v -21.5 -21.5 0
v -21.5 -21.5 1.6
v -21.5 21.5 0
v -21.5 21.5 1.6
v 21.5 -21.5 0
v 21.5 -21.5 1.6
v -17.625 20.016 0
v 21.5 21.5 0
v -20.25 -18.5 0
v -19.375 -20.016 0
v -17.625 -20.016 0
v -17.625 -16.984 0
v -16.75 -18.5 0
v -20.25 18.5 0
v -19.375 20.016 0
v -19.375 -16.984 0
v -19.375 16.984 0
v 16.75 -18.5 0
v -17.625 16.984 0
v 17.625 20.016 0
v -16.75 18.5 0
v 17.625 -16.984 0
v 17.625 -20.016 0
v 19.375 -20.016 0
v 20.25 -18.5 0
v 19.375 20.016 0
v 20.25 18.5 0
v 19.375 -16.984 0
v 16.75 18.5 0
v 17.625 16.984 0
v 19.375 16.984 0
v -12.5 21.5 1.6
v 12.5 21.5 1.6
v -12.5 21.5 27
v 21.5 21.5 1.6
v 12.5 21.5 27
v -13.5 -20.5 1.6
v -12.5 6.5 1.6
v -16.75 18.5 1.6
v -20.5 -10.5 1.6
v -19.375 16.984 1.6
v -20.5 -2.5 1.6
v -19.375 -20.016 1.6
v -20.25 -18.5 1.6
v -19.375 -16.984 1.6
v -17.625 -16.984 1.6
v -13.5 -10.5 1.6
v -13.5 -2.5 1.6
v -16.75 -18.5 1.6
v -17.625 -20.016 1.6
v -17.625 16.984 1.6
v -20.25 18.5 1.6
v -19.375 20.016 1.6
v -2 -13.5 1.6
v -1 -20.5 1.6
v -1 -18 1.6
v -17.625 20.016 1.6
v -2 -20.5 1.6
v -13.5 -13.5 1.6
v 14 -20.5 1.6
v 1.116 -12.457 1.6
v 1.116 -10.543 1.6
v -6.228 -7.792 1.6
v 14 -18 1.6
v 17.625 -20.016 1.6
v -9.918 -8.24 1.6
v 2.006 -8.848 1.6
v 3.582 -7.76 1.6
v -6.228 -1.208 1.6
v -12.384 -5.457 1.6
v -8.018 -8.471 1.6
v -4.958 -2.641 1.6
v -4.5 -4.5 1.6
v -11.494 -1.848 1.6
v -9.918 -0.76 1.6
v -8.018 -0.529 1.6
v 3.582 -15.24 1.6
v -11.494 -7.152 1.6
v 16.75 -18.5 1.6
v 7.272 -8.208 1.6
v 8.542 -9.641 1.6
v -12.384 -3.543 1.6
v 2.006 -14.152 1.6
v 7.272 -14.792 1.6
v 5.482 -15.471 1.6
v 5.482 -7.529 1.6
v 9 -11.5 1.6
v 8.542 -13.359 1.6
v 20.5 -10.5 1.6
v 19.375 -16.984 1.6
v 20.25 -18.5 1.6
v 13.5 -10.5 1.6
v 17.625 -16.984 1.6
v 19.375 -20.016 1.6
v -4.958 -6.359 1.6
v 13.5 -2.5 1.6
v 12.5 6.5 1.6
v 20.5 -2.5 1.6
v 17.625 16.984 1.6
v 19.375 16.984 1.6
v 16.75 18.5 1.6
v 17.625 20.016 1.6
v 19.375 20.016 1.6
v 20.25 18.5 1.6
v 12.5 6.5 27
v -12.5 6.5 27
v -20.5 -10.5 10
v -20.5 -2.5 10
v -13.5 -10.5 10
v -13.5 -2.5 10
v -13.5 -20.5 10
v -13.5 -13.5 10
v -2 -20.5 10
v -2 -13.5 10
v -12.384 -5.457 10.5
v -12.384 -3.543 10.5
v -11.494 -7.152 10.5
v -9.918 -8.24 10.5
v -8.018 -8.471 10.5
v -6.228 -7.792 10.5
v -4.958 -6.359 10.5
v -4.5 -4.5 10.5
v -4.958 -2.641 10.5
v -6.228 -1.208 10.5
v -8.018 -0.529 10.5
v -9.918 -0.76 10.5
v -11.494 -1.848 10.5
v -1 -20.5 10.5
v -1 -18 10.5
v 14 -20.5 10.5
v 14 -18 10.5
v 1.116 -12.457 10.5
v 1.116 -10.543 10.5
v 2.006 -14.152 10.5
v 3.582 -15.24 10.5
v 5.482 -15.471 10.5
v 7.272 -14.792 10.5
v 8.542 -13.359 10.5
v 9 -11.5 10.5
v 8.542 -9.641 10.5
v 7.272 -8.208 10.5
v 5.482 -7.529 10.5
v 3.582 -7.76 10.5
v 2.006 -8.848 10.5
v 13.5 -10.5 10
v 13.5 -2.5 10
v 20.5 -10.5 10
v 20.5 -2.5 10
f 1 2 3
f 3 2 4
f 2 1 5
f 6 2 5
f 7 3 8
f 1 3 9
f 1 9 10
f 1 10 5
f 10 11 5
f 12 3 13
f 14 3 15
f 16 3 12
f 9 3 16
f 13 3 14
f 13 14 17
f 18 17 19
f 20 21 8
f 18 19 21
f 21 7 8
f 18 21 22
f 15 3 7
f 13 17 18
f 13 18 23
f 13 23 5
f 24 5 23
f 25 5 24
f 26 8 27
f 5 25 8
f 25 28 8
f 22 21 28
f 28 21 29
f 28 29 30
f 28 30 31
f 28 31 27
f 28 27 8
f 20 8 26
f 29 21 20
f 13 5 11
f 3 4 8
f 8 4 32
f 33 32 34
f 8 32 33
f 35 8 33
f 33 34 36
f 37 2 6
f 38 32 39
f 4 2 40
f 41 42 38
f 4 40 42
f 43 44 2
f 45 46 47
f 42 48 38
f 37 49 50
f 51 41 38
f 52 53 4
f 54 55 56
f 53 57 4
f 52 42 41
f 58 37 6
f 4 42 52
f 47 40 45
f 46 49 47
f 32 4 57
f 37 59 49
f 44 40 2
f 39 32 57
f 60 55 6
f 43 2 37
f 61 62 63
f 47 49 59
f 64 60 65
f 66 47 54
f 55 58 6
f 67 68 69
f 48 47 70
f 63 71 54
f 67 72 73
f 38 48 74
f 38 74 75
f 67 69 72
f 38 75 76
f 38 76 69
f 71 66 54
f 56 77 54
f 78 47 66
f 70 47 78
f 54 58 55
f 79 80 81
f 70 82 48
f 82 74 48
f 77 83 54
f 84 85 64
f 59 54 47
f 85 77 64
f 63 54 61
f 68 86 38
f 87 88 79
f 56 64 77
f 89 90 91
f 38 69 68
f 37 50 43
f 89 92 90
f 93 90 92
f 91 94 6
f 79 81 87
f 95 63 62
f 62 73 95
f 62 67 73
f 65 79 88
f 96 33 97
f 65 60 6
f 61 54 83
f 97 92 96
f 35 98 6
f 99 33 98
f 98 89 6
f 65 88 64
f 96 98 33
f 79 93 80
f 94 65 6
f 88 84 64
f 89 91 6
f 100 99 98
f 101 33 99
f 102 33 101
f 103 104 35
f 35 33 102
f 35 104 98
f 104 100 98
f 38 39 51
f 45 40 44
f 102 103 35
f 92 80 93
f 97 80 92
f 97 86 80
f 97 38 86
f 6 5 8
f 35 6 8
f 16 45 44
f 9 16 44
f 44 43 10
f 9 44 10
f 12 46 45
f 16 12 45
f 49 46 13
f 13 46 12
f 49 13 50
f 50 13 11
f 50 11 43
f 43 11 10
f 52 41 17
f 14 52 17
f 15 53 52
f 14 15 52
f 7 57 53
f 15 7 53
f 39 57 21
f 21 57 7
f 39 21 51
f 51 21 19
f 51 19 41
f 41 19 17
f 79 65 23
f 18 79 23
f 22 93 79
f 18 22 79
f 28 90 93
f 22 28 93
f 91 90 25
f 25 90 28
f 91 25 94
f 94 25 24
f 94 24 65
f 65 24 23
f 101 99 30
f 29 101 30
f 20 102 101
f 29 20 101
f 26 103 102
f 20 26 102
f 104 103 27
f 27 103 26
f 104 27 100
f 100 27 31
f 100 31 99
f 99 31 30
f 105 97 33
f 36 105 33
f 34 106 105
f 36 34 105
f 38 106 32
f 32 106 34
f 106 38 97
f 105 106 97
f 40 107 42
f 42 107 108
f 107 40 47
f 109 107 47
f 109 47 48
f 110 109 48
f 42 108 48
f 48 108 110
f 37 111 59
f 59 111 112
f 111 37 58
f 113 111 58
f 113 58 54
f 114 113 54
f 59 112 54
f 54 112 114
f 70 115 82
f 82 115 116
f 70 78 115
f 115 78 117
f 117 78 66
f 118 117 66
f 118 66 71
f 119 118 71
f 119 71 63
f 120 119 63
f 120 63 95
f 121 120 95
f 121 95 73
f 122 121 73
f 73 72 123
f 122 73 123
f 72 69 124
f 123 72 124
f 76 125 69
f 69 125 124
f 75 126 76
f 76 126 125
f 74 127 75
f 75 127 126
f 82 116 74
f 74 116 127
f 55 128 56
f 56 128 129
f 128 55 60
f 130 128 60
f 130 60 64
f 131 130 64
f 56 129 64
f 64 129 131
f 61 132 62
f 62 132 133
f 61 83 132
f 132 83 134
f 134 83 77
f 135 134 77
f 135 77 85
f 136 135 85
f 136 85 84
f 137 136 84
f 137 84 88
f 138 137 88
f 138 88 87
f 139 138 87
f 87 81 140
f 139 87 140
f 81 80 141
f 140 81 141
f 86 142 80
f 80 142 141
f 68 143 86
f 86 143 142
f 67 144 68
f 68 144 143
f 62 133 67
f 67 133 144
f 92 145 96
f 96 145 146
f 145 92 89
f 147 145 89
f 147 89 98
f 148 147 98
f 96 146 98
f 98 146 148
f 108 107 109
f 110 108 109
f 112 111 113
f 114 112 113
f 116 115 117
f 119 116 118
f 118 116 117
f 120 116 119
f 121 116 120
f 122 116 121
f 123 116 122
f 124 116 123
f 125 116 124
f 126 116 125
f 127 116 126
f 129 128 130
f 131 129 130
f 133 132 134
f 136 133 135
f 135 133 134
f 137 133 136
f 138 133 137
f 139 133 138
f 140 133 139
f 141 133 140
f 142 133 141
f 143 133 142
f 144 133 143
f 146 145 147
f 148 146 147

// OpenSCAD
// file: ../Colours.scad
//
//FASTENERS
//
boltColour = 		 "gray";
nutColour =  		 "LightGray";
washerColour =       "LightGray";
threadedRodColour =  "gray";


//
//PLATES
//
plateColour =  		"SlateGray";


//
//ELECTRONICS
//
boardColour = 			"red";
photoDiodeColour = 		"DarkSlateGrey";
IRMountColour = 		"white";
batteryColour = 		"blue";
batteryHolderColour = 	"green";
cameraMountColour = 	"green";
cameraColour = 			"red";


//
//MECHANICAL
//
motorColour = 			"WhiteSmoke";
motorMountColour =  	"green";
motorCouplingColour=	"grey";
wheelColour	=			"yellow";


//
//OTHER
//
ballFenderCol = 		"green";
// file: ../Fasteners.scad
include <Colours.scad>

//
//CODE FOR BOLTS	
//

//define some standard bolt dimensions
// [ name on BOM, bolt diameter, hex head thickness, width of head measured between corners]
M3Bolt = ["M3 bolt", 3, 2.3,   6];
M4Bolt = ["M4 bolt", 4,   3, 7.7];
M5Bolt = ["M5 bolt", 5, 4.5, 8.8];
M6Bolt = ["M6 bolt", 6,   5,  11];

//functions for quickly getting bolt dimensions, etc.
function boltName(type) =          type[0];
function boltHoleDia(type) =       type[1];
function boltHeadThickness(type) = type[2];
function boltCorners(type) =       type[3];

module Bolt(type, length, printToBOM = false)
{
	color(boltColour)
	 union()
	 {
		 //hexagonal head shape (cylinder limited to 6 side segments)
		 cylinder(r = boltCorners(type)/2, h = boltHeadThickness(type), $fn = 6);
		 //the bolt shank
		 translate([0,0,-length])
		  cylinder(r = boltHoleDia(type)/2, h = length + 0.1);
	 }
	
	//echoes properties to command line, etc. so it can be counted manually
	//or by a program
	if(printToBOM == true)
	{
		echo(boltName(type), "x", length);
	}
}



//
//CODE FOR NUTS	
//

//define some standard nut dimensions
// [ nut name on BOM, hole diameter, nut thickness, width measured between corners, width between flats]
M3Nut = ["M3 nut", 3, 2.3, 6.1, 5.3];
M4Nut = ["M4 nut", 4,   3, 7.7,   0];
M5Nut = ["M5 nut", 5, 4.5, 8.8,   0];
M6Nut = ["M6 nut", 6,   5,  11,   0];

//functions for quickly getting nut dimensions
function nutName(type) =      type[0];
function nutHoleDia(type) =   type[1];
function nutThickness(type) = type[2];
function nutCorners(type) =   type[3];
function nutFlats(type) =     type[4];

module Nut(type, printToBOM = false, negShape = false)
{
	color(nutColour)
	 difference()
	 {
	 	 //hexagonal shape (cylinder limited to 6 side segments)
		 cylinder(r = nutCorners(type)/2, h = nutThickness(type), $fn = 6);
		
		 //allows for a nut to be generated which is useful for being a negative in other 
		 //difference operations down the track
		 if(negShape == false) 
		 {
			 //the hole through the centre
			 translate([0,0,-0.05])
			  cylinder(r = nutHoleDia(type)/2, h = nutThickness(type) + 0.1);
		 }
	 }
	
	//echoes properties to command line, etc. so it can be counted manually
	//or by a program
	if(printToBOM == true)
	{
		echo(nutName(type));
	}
}




//
//CODE FOR WASHERS
//

//define some standard washers
// [washer name, inner hole diameter, outer diameter, thickness]
M3Washer = ["M3 washer", 3.3,  6.8, 0.5];
M4Washer = ["M4 washer", 4.4,  8.8, 0.8];
M5Washer = ["M5 washer", 5.4,  9.8,   1];
M6Washer = ["M6 washer", 6.5, 11.8, 1.6];

//functions for quickly getting washer dimensions
function washerName(type) =        type[0];
function washerID(type) =     	   type[1];
function washerOD(type) = 		   type[2];
function washerThickness(type) =   type[3];

module Washer(type, printToBOM = false, negShape = false)
{
	color(washerColour)
	 difference()
	 {
		 //main circle shape
		 cylinder(r = washerOD(type)/2, h = washerThickness(type));
		
		 //allows for a washer to be generated which is useful for being a negative in other 
	 	 //difference operations down the track
		 if(negShape == false) 
		 {
			 //the hole through the centre
			 translate([0,0,-0.05])
			  cylinder(r = washerID(type)/2, h = washerThickness(type) + 0.1);
		 }
	 }
	
	//echoes properties to command line, etc. so it can be counted manually
	//or by a program
	if(printToBOM == true)
	{
		echo(washerName(type));
	}
}




//
//CODE FOR THREADED ROD
//

//define some standard dimensions and properties
// [name on BOM, rod diameter]
M3Threaded = ["M3 threaded rod", 3];
M4Threaded = ["M4 threaded rod", 4];
M5Threaded = ["M5 threaded rod", 5];
M6Threaded = ["M6 threaded rod", 6];

//functions for quickly getting bolt dimensions
function threadName(type) =   type[0];
function threadDia(type) =    type[1];

module ThreadedRod(type, length, printToBOM = false)
{
	color(threadedRodColour)
	 cylinder(r = threadDia(type)/2, h = length);
	
	//echoes properties to command line, etc. so it can be counted manually
	//or by a program
	if(printToBOM == true)
	{
		echo(threadName(type), "x", length);
	}
}
// file: ../Electronics.scad
include <Fasteners.scad>
include <Colours.scad>




//
//ELECTRONICS CONTROLLER BOARDS
//

// [name on BOM, path to stl model if any, hole type, [hole top left position], [hole top right position], [hole bot right position], [hole bot left position] ]
ArduinoUNO =   [ "Arduino UNO",  "Arduino.stl", M3Bolt, 			[-19, 24.15], 	[31.8, 8.95], 	[31.8, -19.05], [-20.3, -24.15] ];
L298NHBridge = [ "L298N H-Bridge", "L298N.stl", M3Bolt, 			[-18.5, 18.5], 	[18.5, 18.5], 	[18.5, -18.5], 	[-18.5, -18.5] ];
BeagleBone =   [ "BeagleBone Black", "BeagleBoneBlack.stl", M3Bolt, [-28, 24], 		[38, 21], 		[38, -21], 		[-28, -24] ];
OdroidU3 = 	   [ "Ordoid U3",	"OdroidU3.stl",	M3Bolt, 			[-38, 20.5],	[38, 20.5],		[38, -20.5],	[-38, -20.5]];

//functions for getting useful dimensions
function boardName(type) = type[0];
function getModelPath(type) = type[1];
function boardHoleDia(type) = boltHoleDia(type[2]);
function getHolePos(type, holeNum) = type[holeNum+3]; //hole num starts at 0

//used to get a hole template for difference operations
module HoleTemplate(board, boltLength, clearance)
{
	for(i=[0:3])
	{
		echo(i);
		translate(getHolePos(board, i))
		 cylinder(r = (boardHoleDia(board)+clearance)/2, h = boltLength);
	}
}




//
//module to create a model of the boards, mainly visual
//

module DisplayBoard(type)
{
	//arduino model is not properly centred
	if(type == ArduinoUNO)
	{
		translate([-19, 24.15, 0])
		 color(boardColour)
		  import(getModelPath(type));
	}
	
	else
	{
		color(boardColour)
		 import(getModelPath(type));
	}
	
	echo(boardName(type));
}

/*
translate([0,0,20])
translate(ArduinoUNO[3])
 DisplayBoard(ArduinoUNO);

difference()
{	
	translate([-50, -35, 0.1])
	cube([100,70,5]);
	HoleTemplate(ArduinoUNO, 20, 0.5);
}
*/
// main file
include <../Electronics.scad>
include <../Fasteners.scad>





//
//create a rough model of the L298N board 
//

boardWidth = 43;
boardLength = 43;
boardThickness = 1.6;


difference()
{
	translate([-43/2, -43/2, 0])
	 union()
	 {
		//the PCB
		 cube([boardWidth, boardLength, boardThickness]);

		//the heatsink
		translate([(43-25)/2, 43-15, 0])
	 	 cube([25,15,27]);
		
		
		//
		//the terminal connections
		//
		//left
		translate([ 1, 11, boardThickness - 0.1])
		 cube([7, 8, 8.5]);
		
		//right
		translate([ boardWidth - 8, 11, boardThickness - 0.1])
		 cube([7, 8, 8.5]);

		//bottom
		translate([ 8, 1, boardThickness - 0.1])
		 cube([11.5, 7, 8.5]);
		 
		
		//the headers
		translate([ 8 + 11.5 + 1, 1, boardThickness - 0.1])
		 cube([15, 2.5, 9]);
		 
		//the capacitors
		translate([ 8 + 4 + 1, 17, boardThickness - 0.1])
		 cylinder(r = 4, h = 9);
		 
		translate([ 8 + 11.5 + 3 + 4, 5 + 5, boardThickness - 0.1])
		 cylinder(r = 4, h = 9);
	}

	//the drill holes
	translate([0,0,-1])
	 HoleTemplate(L298NHBridge, 20, 0.5);
}
